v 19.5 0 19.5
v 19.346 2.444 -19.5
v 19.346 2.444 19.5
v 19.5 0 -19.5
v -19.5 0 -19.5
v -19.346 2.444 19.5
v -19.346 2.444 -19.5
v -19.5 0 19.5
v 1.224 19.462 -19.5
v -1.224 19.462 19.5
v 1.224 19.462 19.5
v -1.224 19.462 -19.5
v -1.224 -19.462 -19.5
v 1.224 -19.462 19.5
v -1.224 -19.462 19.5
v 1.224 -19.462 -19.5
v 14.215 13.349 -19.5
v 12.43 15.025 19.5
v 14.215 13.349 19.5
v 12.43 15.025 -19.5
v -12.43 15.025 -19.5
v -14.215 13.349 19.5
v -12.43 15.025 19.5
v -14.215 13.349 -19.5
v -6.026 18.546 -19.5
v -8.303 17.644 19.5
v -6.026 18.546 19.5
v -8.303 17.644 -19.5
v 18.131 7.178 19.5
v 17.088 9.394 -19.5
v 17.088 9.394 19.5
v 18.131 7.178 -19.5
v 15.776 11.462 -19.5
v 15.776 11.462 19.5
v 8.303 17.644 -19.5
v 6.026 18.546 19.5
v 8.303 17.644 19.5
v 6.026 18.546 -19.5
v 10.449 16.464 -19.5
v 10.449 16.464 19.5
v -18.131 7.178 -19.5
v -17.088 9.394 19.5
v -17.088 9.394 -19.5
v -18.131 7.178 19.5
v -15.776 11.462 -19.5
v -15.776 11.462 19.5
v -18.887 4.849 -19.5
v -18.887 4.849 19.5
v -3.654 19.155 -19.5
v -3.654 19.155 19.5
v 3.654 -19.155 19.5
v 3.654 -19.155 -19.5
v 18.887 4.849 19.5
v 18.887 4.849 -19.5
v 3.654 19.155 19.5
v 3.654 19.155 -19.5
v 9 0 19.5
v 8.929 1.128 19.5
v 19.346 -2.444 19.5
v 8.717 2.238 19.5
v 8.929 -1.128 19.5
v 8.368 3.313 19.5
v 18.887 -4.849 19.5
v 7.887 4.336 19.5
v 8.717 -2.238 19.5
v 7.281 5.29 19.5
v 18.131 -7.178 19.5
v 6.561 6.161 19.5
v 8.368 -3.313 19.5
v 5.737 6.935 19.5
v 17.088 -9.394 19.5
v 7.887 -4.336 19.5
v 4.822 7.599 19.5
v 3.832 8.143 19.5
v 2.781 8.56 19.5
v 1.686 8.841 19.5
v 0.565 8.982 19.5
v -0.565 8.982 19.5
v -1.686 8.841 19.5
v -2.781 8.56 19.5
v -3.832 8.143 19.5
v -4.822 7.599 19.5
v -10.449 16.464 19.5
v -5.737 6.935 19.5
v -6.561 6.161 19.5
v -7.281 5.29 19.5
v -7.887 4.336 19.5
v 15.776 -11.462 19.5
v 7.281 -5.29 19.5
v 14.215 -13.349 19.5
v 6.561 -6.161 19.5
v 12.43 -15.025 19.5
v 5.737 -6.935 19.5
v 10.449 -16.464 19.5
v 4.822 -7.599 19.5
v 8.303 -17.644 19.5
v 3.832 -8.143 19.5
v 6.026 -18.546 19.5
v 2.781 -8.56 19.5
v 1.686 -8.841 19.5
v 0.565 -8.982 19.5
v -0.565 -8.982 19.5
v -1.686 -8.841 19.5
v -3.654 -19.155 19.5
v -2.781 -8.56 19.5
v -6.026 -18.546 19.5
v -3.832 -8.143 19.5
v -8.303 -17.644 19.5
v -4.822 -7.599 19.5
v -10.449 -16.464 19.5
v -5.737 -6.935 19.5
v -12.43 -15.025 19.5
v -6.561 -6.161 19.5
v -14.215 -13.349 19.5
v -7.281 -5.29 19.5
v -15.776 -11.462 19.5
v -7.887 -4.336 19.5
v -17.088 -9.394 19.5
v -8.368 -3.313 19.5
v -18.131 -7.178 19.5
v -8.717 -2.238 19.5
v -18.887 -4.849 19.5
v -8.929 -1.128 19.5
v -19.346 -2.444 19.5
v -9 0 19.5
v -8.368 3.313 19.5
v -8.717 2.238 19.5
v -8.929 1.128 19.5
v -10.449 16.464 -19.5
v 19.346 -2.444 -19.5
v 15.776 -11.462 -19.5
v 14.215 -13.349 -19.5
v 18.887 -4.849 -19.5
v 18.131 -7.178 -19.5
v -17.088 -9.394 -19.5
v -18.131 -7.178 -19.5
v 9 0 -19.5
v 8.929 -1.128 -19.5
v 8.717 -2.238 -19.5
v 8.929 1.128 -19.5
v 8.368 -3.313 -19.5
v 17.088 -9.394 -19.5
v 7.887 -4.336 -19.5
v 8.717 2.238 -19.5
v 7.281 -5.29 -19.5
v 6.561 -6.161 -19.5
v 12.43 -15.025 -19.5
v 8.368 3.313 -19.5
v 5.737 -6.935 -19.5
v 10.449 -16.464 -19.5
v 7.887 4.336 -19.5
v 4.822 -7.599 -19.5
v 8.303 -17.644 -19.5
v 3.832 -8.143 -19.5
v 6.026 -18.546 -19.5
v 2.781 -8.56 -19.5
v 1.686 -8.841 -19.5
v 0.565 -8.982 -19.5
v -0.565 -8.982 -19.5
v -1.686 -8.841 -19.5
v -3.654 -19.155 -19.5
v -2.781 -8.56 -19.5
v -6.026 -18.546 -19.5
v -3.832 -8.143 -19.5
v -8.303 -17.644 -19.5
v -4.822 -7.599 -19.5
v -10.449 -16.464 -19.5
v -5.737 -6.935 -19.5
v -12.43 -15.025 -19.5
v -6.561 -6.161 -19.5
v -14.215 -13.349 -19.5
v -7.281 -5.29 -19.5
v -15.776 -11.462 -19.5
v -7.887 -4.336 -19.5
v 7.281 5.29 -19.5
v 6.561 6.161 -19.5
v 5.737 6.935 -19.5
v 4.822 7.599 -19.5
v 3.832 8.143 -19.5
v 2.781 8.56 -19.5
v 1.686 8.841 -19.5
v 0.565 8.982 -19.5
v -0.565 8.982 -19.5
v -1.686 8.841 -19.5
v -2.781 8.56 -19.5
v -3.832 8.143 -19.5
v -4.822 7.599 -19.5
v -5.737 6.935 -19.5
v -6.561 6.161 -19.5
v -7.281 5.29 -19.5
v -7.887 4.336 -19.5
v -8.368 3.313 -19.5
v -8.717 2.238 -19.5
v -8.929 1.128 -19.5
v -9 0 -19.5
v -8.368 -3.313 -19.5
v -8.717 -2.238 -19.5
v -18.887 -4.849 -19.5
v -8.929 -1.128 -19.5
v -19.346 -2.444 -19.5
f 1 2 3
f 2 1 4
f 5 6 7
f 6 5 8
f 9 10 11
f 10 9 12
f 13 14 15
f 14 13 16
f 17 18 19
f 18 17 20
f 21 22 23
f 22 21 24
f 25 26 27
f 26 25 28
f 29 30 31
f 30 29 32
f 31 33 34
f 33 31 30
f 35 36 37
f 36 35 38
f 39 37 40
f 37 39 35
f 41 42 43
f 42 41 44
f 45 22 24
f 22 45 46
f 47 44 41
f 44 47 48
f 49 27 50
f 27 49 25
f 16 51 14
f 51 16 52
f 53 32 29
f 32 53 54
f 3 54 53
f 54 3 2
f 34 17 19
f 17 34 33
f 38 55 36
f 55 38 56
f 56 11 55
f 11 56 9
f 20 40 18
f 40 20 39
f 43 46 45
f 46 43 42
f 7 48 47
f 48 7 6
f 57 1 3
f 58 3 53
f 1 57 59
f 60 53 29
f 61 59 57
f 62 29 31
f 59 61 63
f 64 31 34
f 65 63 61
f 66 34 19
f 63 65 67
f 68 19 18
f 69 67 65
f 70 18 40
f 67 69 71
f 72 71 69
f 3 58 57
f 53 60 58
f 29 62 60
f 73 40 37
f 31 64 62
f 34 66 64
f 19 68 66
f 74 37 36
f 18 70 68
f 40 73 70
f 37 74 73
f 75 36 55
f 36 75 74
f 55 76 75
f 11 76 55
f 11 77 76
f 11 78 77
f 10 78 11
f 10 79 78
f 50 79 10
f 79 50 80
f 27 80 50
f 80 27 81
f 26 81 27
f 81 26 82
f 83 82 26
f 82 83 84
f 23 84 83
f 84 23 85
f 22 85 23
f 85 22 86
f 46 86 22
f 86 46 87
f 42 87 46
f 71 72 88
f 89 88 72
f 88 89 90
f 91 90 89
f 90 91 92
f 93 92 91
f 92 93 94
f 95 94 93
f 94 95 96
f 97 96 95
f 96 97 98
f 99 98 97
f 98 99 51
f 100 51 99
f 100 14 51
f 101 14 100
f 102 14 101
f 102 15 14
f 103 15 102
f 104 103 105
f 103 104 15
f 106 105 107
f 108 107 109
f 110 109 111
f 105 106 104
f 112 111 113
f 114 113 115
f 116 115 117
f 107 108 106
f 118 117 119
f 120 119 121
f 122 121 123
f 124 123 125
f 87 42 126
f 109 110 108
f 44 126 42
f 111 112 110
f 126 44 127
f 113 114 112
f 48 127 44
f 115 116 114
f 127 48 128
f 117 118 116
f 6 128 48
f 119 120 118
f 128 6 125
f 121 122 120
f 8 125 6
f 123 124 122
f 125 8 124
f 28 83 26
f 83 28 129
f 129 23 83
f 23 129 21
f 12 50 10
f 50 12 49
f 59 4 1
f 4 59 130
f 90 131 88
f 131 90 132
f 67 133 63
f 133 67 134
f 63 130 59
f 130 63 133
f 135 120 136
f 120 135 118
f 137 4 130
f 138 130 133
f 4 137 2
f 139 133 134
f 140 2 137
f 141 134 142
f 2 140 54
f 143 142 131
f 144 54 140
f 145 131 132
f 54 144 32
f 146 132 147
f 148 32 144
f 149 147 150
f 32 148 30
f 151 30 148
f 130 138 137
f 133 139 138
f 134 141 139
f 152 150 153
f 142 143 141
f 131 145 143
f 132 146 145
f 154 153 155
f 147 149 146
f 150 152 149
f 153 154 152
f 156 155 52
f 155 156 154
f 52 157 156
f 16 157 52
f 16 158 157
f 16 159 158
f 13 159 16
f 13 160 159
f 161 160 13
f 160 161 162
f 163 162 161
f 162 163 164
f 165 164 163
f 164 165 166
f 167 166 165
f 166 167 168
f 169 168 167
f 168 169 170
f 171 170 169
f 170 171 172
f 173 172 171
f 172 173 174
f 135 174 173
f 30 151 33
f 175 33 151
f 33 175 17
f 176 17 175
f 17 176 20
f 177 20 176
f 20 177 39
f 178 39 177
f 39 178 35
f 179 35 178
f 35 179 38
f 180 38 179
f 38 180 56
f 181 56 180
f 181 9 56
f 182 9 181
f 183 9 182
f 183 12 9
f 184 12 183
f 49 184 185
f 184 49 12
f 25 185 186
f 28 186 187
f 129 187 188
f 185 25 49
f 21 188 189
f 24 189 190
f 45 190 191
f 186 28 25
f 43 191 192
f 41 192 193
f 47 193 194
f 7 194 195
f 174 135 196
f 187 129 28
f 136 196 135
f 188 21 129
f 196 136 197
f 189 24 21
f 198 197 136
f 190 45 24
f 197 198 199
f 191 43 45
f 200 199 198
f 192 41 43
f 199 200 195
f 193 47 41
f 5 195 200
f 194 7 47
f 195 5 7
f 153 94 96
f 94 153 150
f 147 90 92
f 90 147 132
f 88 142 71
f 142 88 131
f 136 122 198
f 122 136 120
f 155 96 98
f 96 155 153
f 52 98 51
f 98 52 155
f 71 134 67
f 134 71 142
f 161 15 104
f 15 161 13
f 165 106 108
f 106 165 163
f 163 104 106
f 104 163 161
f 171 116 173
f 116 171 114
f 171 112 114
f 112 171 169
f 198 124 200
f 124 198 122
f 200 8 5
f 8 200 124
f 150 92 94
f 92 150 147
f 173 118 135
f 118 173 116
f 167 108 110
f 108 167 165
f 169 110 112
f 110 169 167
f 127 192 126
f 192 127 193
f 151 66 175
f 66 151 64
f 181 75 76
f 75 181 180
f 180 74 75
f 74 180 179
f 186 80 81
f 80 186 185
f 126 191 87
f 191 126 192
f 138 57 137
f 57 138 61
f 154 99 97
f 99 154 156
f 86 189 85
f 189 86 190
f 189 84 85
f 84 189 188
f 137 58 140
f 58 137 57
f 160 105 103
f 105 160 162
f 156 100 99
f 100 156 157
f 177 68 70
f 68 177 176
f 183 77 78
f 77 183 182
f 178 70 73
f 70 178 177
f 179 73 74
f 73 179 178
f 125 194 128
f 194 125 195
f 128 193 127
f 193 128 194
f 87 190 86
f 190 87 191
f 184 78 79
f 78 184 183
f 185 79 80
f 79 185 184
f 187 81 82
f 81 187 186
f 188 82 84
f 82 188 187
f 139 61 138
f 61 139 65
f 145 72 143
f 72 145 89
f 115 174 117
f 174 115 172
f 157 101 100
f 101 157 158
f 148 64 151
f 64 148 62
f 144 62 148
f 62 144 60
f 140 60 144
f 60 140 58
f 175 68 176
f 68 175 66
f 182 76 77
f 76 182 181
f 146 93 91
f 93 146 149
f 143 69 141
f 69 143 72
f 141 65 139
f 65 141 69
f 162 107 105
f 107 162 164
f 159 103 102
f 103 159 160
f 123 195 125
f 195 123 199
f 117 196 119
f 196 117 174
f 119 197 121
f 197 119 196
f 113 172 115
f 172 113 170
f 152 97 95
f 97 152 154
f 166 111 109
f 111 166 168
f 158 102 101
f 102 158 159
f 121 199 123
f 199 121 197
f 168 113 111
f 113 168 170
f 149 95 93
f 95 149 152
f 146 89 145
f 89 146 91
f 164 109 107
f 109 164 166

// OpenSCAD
$fn = 50;


difference() {
	union() {
		translate(v = [0, 0, -19.5000000000]) {
			cylinder(h = 39, r = 19.5000000000);
		}
	}
	union() {
		translate(v = [0, 0, -100.0000000000]) {
			cylinder(h = 200, r = 9);
		}
	}
}
